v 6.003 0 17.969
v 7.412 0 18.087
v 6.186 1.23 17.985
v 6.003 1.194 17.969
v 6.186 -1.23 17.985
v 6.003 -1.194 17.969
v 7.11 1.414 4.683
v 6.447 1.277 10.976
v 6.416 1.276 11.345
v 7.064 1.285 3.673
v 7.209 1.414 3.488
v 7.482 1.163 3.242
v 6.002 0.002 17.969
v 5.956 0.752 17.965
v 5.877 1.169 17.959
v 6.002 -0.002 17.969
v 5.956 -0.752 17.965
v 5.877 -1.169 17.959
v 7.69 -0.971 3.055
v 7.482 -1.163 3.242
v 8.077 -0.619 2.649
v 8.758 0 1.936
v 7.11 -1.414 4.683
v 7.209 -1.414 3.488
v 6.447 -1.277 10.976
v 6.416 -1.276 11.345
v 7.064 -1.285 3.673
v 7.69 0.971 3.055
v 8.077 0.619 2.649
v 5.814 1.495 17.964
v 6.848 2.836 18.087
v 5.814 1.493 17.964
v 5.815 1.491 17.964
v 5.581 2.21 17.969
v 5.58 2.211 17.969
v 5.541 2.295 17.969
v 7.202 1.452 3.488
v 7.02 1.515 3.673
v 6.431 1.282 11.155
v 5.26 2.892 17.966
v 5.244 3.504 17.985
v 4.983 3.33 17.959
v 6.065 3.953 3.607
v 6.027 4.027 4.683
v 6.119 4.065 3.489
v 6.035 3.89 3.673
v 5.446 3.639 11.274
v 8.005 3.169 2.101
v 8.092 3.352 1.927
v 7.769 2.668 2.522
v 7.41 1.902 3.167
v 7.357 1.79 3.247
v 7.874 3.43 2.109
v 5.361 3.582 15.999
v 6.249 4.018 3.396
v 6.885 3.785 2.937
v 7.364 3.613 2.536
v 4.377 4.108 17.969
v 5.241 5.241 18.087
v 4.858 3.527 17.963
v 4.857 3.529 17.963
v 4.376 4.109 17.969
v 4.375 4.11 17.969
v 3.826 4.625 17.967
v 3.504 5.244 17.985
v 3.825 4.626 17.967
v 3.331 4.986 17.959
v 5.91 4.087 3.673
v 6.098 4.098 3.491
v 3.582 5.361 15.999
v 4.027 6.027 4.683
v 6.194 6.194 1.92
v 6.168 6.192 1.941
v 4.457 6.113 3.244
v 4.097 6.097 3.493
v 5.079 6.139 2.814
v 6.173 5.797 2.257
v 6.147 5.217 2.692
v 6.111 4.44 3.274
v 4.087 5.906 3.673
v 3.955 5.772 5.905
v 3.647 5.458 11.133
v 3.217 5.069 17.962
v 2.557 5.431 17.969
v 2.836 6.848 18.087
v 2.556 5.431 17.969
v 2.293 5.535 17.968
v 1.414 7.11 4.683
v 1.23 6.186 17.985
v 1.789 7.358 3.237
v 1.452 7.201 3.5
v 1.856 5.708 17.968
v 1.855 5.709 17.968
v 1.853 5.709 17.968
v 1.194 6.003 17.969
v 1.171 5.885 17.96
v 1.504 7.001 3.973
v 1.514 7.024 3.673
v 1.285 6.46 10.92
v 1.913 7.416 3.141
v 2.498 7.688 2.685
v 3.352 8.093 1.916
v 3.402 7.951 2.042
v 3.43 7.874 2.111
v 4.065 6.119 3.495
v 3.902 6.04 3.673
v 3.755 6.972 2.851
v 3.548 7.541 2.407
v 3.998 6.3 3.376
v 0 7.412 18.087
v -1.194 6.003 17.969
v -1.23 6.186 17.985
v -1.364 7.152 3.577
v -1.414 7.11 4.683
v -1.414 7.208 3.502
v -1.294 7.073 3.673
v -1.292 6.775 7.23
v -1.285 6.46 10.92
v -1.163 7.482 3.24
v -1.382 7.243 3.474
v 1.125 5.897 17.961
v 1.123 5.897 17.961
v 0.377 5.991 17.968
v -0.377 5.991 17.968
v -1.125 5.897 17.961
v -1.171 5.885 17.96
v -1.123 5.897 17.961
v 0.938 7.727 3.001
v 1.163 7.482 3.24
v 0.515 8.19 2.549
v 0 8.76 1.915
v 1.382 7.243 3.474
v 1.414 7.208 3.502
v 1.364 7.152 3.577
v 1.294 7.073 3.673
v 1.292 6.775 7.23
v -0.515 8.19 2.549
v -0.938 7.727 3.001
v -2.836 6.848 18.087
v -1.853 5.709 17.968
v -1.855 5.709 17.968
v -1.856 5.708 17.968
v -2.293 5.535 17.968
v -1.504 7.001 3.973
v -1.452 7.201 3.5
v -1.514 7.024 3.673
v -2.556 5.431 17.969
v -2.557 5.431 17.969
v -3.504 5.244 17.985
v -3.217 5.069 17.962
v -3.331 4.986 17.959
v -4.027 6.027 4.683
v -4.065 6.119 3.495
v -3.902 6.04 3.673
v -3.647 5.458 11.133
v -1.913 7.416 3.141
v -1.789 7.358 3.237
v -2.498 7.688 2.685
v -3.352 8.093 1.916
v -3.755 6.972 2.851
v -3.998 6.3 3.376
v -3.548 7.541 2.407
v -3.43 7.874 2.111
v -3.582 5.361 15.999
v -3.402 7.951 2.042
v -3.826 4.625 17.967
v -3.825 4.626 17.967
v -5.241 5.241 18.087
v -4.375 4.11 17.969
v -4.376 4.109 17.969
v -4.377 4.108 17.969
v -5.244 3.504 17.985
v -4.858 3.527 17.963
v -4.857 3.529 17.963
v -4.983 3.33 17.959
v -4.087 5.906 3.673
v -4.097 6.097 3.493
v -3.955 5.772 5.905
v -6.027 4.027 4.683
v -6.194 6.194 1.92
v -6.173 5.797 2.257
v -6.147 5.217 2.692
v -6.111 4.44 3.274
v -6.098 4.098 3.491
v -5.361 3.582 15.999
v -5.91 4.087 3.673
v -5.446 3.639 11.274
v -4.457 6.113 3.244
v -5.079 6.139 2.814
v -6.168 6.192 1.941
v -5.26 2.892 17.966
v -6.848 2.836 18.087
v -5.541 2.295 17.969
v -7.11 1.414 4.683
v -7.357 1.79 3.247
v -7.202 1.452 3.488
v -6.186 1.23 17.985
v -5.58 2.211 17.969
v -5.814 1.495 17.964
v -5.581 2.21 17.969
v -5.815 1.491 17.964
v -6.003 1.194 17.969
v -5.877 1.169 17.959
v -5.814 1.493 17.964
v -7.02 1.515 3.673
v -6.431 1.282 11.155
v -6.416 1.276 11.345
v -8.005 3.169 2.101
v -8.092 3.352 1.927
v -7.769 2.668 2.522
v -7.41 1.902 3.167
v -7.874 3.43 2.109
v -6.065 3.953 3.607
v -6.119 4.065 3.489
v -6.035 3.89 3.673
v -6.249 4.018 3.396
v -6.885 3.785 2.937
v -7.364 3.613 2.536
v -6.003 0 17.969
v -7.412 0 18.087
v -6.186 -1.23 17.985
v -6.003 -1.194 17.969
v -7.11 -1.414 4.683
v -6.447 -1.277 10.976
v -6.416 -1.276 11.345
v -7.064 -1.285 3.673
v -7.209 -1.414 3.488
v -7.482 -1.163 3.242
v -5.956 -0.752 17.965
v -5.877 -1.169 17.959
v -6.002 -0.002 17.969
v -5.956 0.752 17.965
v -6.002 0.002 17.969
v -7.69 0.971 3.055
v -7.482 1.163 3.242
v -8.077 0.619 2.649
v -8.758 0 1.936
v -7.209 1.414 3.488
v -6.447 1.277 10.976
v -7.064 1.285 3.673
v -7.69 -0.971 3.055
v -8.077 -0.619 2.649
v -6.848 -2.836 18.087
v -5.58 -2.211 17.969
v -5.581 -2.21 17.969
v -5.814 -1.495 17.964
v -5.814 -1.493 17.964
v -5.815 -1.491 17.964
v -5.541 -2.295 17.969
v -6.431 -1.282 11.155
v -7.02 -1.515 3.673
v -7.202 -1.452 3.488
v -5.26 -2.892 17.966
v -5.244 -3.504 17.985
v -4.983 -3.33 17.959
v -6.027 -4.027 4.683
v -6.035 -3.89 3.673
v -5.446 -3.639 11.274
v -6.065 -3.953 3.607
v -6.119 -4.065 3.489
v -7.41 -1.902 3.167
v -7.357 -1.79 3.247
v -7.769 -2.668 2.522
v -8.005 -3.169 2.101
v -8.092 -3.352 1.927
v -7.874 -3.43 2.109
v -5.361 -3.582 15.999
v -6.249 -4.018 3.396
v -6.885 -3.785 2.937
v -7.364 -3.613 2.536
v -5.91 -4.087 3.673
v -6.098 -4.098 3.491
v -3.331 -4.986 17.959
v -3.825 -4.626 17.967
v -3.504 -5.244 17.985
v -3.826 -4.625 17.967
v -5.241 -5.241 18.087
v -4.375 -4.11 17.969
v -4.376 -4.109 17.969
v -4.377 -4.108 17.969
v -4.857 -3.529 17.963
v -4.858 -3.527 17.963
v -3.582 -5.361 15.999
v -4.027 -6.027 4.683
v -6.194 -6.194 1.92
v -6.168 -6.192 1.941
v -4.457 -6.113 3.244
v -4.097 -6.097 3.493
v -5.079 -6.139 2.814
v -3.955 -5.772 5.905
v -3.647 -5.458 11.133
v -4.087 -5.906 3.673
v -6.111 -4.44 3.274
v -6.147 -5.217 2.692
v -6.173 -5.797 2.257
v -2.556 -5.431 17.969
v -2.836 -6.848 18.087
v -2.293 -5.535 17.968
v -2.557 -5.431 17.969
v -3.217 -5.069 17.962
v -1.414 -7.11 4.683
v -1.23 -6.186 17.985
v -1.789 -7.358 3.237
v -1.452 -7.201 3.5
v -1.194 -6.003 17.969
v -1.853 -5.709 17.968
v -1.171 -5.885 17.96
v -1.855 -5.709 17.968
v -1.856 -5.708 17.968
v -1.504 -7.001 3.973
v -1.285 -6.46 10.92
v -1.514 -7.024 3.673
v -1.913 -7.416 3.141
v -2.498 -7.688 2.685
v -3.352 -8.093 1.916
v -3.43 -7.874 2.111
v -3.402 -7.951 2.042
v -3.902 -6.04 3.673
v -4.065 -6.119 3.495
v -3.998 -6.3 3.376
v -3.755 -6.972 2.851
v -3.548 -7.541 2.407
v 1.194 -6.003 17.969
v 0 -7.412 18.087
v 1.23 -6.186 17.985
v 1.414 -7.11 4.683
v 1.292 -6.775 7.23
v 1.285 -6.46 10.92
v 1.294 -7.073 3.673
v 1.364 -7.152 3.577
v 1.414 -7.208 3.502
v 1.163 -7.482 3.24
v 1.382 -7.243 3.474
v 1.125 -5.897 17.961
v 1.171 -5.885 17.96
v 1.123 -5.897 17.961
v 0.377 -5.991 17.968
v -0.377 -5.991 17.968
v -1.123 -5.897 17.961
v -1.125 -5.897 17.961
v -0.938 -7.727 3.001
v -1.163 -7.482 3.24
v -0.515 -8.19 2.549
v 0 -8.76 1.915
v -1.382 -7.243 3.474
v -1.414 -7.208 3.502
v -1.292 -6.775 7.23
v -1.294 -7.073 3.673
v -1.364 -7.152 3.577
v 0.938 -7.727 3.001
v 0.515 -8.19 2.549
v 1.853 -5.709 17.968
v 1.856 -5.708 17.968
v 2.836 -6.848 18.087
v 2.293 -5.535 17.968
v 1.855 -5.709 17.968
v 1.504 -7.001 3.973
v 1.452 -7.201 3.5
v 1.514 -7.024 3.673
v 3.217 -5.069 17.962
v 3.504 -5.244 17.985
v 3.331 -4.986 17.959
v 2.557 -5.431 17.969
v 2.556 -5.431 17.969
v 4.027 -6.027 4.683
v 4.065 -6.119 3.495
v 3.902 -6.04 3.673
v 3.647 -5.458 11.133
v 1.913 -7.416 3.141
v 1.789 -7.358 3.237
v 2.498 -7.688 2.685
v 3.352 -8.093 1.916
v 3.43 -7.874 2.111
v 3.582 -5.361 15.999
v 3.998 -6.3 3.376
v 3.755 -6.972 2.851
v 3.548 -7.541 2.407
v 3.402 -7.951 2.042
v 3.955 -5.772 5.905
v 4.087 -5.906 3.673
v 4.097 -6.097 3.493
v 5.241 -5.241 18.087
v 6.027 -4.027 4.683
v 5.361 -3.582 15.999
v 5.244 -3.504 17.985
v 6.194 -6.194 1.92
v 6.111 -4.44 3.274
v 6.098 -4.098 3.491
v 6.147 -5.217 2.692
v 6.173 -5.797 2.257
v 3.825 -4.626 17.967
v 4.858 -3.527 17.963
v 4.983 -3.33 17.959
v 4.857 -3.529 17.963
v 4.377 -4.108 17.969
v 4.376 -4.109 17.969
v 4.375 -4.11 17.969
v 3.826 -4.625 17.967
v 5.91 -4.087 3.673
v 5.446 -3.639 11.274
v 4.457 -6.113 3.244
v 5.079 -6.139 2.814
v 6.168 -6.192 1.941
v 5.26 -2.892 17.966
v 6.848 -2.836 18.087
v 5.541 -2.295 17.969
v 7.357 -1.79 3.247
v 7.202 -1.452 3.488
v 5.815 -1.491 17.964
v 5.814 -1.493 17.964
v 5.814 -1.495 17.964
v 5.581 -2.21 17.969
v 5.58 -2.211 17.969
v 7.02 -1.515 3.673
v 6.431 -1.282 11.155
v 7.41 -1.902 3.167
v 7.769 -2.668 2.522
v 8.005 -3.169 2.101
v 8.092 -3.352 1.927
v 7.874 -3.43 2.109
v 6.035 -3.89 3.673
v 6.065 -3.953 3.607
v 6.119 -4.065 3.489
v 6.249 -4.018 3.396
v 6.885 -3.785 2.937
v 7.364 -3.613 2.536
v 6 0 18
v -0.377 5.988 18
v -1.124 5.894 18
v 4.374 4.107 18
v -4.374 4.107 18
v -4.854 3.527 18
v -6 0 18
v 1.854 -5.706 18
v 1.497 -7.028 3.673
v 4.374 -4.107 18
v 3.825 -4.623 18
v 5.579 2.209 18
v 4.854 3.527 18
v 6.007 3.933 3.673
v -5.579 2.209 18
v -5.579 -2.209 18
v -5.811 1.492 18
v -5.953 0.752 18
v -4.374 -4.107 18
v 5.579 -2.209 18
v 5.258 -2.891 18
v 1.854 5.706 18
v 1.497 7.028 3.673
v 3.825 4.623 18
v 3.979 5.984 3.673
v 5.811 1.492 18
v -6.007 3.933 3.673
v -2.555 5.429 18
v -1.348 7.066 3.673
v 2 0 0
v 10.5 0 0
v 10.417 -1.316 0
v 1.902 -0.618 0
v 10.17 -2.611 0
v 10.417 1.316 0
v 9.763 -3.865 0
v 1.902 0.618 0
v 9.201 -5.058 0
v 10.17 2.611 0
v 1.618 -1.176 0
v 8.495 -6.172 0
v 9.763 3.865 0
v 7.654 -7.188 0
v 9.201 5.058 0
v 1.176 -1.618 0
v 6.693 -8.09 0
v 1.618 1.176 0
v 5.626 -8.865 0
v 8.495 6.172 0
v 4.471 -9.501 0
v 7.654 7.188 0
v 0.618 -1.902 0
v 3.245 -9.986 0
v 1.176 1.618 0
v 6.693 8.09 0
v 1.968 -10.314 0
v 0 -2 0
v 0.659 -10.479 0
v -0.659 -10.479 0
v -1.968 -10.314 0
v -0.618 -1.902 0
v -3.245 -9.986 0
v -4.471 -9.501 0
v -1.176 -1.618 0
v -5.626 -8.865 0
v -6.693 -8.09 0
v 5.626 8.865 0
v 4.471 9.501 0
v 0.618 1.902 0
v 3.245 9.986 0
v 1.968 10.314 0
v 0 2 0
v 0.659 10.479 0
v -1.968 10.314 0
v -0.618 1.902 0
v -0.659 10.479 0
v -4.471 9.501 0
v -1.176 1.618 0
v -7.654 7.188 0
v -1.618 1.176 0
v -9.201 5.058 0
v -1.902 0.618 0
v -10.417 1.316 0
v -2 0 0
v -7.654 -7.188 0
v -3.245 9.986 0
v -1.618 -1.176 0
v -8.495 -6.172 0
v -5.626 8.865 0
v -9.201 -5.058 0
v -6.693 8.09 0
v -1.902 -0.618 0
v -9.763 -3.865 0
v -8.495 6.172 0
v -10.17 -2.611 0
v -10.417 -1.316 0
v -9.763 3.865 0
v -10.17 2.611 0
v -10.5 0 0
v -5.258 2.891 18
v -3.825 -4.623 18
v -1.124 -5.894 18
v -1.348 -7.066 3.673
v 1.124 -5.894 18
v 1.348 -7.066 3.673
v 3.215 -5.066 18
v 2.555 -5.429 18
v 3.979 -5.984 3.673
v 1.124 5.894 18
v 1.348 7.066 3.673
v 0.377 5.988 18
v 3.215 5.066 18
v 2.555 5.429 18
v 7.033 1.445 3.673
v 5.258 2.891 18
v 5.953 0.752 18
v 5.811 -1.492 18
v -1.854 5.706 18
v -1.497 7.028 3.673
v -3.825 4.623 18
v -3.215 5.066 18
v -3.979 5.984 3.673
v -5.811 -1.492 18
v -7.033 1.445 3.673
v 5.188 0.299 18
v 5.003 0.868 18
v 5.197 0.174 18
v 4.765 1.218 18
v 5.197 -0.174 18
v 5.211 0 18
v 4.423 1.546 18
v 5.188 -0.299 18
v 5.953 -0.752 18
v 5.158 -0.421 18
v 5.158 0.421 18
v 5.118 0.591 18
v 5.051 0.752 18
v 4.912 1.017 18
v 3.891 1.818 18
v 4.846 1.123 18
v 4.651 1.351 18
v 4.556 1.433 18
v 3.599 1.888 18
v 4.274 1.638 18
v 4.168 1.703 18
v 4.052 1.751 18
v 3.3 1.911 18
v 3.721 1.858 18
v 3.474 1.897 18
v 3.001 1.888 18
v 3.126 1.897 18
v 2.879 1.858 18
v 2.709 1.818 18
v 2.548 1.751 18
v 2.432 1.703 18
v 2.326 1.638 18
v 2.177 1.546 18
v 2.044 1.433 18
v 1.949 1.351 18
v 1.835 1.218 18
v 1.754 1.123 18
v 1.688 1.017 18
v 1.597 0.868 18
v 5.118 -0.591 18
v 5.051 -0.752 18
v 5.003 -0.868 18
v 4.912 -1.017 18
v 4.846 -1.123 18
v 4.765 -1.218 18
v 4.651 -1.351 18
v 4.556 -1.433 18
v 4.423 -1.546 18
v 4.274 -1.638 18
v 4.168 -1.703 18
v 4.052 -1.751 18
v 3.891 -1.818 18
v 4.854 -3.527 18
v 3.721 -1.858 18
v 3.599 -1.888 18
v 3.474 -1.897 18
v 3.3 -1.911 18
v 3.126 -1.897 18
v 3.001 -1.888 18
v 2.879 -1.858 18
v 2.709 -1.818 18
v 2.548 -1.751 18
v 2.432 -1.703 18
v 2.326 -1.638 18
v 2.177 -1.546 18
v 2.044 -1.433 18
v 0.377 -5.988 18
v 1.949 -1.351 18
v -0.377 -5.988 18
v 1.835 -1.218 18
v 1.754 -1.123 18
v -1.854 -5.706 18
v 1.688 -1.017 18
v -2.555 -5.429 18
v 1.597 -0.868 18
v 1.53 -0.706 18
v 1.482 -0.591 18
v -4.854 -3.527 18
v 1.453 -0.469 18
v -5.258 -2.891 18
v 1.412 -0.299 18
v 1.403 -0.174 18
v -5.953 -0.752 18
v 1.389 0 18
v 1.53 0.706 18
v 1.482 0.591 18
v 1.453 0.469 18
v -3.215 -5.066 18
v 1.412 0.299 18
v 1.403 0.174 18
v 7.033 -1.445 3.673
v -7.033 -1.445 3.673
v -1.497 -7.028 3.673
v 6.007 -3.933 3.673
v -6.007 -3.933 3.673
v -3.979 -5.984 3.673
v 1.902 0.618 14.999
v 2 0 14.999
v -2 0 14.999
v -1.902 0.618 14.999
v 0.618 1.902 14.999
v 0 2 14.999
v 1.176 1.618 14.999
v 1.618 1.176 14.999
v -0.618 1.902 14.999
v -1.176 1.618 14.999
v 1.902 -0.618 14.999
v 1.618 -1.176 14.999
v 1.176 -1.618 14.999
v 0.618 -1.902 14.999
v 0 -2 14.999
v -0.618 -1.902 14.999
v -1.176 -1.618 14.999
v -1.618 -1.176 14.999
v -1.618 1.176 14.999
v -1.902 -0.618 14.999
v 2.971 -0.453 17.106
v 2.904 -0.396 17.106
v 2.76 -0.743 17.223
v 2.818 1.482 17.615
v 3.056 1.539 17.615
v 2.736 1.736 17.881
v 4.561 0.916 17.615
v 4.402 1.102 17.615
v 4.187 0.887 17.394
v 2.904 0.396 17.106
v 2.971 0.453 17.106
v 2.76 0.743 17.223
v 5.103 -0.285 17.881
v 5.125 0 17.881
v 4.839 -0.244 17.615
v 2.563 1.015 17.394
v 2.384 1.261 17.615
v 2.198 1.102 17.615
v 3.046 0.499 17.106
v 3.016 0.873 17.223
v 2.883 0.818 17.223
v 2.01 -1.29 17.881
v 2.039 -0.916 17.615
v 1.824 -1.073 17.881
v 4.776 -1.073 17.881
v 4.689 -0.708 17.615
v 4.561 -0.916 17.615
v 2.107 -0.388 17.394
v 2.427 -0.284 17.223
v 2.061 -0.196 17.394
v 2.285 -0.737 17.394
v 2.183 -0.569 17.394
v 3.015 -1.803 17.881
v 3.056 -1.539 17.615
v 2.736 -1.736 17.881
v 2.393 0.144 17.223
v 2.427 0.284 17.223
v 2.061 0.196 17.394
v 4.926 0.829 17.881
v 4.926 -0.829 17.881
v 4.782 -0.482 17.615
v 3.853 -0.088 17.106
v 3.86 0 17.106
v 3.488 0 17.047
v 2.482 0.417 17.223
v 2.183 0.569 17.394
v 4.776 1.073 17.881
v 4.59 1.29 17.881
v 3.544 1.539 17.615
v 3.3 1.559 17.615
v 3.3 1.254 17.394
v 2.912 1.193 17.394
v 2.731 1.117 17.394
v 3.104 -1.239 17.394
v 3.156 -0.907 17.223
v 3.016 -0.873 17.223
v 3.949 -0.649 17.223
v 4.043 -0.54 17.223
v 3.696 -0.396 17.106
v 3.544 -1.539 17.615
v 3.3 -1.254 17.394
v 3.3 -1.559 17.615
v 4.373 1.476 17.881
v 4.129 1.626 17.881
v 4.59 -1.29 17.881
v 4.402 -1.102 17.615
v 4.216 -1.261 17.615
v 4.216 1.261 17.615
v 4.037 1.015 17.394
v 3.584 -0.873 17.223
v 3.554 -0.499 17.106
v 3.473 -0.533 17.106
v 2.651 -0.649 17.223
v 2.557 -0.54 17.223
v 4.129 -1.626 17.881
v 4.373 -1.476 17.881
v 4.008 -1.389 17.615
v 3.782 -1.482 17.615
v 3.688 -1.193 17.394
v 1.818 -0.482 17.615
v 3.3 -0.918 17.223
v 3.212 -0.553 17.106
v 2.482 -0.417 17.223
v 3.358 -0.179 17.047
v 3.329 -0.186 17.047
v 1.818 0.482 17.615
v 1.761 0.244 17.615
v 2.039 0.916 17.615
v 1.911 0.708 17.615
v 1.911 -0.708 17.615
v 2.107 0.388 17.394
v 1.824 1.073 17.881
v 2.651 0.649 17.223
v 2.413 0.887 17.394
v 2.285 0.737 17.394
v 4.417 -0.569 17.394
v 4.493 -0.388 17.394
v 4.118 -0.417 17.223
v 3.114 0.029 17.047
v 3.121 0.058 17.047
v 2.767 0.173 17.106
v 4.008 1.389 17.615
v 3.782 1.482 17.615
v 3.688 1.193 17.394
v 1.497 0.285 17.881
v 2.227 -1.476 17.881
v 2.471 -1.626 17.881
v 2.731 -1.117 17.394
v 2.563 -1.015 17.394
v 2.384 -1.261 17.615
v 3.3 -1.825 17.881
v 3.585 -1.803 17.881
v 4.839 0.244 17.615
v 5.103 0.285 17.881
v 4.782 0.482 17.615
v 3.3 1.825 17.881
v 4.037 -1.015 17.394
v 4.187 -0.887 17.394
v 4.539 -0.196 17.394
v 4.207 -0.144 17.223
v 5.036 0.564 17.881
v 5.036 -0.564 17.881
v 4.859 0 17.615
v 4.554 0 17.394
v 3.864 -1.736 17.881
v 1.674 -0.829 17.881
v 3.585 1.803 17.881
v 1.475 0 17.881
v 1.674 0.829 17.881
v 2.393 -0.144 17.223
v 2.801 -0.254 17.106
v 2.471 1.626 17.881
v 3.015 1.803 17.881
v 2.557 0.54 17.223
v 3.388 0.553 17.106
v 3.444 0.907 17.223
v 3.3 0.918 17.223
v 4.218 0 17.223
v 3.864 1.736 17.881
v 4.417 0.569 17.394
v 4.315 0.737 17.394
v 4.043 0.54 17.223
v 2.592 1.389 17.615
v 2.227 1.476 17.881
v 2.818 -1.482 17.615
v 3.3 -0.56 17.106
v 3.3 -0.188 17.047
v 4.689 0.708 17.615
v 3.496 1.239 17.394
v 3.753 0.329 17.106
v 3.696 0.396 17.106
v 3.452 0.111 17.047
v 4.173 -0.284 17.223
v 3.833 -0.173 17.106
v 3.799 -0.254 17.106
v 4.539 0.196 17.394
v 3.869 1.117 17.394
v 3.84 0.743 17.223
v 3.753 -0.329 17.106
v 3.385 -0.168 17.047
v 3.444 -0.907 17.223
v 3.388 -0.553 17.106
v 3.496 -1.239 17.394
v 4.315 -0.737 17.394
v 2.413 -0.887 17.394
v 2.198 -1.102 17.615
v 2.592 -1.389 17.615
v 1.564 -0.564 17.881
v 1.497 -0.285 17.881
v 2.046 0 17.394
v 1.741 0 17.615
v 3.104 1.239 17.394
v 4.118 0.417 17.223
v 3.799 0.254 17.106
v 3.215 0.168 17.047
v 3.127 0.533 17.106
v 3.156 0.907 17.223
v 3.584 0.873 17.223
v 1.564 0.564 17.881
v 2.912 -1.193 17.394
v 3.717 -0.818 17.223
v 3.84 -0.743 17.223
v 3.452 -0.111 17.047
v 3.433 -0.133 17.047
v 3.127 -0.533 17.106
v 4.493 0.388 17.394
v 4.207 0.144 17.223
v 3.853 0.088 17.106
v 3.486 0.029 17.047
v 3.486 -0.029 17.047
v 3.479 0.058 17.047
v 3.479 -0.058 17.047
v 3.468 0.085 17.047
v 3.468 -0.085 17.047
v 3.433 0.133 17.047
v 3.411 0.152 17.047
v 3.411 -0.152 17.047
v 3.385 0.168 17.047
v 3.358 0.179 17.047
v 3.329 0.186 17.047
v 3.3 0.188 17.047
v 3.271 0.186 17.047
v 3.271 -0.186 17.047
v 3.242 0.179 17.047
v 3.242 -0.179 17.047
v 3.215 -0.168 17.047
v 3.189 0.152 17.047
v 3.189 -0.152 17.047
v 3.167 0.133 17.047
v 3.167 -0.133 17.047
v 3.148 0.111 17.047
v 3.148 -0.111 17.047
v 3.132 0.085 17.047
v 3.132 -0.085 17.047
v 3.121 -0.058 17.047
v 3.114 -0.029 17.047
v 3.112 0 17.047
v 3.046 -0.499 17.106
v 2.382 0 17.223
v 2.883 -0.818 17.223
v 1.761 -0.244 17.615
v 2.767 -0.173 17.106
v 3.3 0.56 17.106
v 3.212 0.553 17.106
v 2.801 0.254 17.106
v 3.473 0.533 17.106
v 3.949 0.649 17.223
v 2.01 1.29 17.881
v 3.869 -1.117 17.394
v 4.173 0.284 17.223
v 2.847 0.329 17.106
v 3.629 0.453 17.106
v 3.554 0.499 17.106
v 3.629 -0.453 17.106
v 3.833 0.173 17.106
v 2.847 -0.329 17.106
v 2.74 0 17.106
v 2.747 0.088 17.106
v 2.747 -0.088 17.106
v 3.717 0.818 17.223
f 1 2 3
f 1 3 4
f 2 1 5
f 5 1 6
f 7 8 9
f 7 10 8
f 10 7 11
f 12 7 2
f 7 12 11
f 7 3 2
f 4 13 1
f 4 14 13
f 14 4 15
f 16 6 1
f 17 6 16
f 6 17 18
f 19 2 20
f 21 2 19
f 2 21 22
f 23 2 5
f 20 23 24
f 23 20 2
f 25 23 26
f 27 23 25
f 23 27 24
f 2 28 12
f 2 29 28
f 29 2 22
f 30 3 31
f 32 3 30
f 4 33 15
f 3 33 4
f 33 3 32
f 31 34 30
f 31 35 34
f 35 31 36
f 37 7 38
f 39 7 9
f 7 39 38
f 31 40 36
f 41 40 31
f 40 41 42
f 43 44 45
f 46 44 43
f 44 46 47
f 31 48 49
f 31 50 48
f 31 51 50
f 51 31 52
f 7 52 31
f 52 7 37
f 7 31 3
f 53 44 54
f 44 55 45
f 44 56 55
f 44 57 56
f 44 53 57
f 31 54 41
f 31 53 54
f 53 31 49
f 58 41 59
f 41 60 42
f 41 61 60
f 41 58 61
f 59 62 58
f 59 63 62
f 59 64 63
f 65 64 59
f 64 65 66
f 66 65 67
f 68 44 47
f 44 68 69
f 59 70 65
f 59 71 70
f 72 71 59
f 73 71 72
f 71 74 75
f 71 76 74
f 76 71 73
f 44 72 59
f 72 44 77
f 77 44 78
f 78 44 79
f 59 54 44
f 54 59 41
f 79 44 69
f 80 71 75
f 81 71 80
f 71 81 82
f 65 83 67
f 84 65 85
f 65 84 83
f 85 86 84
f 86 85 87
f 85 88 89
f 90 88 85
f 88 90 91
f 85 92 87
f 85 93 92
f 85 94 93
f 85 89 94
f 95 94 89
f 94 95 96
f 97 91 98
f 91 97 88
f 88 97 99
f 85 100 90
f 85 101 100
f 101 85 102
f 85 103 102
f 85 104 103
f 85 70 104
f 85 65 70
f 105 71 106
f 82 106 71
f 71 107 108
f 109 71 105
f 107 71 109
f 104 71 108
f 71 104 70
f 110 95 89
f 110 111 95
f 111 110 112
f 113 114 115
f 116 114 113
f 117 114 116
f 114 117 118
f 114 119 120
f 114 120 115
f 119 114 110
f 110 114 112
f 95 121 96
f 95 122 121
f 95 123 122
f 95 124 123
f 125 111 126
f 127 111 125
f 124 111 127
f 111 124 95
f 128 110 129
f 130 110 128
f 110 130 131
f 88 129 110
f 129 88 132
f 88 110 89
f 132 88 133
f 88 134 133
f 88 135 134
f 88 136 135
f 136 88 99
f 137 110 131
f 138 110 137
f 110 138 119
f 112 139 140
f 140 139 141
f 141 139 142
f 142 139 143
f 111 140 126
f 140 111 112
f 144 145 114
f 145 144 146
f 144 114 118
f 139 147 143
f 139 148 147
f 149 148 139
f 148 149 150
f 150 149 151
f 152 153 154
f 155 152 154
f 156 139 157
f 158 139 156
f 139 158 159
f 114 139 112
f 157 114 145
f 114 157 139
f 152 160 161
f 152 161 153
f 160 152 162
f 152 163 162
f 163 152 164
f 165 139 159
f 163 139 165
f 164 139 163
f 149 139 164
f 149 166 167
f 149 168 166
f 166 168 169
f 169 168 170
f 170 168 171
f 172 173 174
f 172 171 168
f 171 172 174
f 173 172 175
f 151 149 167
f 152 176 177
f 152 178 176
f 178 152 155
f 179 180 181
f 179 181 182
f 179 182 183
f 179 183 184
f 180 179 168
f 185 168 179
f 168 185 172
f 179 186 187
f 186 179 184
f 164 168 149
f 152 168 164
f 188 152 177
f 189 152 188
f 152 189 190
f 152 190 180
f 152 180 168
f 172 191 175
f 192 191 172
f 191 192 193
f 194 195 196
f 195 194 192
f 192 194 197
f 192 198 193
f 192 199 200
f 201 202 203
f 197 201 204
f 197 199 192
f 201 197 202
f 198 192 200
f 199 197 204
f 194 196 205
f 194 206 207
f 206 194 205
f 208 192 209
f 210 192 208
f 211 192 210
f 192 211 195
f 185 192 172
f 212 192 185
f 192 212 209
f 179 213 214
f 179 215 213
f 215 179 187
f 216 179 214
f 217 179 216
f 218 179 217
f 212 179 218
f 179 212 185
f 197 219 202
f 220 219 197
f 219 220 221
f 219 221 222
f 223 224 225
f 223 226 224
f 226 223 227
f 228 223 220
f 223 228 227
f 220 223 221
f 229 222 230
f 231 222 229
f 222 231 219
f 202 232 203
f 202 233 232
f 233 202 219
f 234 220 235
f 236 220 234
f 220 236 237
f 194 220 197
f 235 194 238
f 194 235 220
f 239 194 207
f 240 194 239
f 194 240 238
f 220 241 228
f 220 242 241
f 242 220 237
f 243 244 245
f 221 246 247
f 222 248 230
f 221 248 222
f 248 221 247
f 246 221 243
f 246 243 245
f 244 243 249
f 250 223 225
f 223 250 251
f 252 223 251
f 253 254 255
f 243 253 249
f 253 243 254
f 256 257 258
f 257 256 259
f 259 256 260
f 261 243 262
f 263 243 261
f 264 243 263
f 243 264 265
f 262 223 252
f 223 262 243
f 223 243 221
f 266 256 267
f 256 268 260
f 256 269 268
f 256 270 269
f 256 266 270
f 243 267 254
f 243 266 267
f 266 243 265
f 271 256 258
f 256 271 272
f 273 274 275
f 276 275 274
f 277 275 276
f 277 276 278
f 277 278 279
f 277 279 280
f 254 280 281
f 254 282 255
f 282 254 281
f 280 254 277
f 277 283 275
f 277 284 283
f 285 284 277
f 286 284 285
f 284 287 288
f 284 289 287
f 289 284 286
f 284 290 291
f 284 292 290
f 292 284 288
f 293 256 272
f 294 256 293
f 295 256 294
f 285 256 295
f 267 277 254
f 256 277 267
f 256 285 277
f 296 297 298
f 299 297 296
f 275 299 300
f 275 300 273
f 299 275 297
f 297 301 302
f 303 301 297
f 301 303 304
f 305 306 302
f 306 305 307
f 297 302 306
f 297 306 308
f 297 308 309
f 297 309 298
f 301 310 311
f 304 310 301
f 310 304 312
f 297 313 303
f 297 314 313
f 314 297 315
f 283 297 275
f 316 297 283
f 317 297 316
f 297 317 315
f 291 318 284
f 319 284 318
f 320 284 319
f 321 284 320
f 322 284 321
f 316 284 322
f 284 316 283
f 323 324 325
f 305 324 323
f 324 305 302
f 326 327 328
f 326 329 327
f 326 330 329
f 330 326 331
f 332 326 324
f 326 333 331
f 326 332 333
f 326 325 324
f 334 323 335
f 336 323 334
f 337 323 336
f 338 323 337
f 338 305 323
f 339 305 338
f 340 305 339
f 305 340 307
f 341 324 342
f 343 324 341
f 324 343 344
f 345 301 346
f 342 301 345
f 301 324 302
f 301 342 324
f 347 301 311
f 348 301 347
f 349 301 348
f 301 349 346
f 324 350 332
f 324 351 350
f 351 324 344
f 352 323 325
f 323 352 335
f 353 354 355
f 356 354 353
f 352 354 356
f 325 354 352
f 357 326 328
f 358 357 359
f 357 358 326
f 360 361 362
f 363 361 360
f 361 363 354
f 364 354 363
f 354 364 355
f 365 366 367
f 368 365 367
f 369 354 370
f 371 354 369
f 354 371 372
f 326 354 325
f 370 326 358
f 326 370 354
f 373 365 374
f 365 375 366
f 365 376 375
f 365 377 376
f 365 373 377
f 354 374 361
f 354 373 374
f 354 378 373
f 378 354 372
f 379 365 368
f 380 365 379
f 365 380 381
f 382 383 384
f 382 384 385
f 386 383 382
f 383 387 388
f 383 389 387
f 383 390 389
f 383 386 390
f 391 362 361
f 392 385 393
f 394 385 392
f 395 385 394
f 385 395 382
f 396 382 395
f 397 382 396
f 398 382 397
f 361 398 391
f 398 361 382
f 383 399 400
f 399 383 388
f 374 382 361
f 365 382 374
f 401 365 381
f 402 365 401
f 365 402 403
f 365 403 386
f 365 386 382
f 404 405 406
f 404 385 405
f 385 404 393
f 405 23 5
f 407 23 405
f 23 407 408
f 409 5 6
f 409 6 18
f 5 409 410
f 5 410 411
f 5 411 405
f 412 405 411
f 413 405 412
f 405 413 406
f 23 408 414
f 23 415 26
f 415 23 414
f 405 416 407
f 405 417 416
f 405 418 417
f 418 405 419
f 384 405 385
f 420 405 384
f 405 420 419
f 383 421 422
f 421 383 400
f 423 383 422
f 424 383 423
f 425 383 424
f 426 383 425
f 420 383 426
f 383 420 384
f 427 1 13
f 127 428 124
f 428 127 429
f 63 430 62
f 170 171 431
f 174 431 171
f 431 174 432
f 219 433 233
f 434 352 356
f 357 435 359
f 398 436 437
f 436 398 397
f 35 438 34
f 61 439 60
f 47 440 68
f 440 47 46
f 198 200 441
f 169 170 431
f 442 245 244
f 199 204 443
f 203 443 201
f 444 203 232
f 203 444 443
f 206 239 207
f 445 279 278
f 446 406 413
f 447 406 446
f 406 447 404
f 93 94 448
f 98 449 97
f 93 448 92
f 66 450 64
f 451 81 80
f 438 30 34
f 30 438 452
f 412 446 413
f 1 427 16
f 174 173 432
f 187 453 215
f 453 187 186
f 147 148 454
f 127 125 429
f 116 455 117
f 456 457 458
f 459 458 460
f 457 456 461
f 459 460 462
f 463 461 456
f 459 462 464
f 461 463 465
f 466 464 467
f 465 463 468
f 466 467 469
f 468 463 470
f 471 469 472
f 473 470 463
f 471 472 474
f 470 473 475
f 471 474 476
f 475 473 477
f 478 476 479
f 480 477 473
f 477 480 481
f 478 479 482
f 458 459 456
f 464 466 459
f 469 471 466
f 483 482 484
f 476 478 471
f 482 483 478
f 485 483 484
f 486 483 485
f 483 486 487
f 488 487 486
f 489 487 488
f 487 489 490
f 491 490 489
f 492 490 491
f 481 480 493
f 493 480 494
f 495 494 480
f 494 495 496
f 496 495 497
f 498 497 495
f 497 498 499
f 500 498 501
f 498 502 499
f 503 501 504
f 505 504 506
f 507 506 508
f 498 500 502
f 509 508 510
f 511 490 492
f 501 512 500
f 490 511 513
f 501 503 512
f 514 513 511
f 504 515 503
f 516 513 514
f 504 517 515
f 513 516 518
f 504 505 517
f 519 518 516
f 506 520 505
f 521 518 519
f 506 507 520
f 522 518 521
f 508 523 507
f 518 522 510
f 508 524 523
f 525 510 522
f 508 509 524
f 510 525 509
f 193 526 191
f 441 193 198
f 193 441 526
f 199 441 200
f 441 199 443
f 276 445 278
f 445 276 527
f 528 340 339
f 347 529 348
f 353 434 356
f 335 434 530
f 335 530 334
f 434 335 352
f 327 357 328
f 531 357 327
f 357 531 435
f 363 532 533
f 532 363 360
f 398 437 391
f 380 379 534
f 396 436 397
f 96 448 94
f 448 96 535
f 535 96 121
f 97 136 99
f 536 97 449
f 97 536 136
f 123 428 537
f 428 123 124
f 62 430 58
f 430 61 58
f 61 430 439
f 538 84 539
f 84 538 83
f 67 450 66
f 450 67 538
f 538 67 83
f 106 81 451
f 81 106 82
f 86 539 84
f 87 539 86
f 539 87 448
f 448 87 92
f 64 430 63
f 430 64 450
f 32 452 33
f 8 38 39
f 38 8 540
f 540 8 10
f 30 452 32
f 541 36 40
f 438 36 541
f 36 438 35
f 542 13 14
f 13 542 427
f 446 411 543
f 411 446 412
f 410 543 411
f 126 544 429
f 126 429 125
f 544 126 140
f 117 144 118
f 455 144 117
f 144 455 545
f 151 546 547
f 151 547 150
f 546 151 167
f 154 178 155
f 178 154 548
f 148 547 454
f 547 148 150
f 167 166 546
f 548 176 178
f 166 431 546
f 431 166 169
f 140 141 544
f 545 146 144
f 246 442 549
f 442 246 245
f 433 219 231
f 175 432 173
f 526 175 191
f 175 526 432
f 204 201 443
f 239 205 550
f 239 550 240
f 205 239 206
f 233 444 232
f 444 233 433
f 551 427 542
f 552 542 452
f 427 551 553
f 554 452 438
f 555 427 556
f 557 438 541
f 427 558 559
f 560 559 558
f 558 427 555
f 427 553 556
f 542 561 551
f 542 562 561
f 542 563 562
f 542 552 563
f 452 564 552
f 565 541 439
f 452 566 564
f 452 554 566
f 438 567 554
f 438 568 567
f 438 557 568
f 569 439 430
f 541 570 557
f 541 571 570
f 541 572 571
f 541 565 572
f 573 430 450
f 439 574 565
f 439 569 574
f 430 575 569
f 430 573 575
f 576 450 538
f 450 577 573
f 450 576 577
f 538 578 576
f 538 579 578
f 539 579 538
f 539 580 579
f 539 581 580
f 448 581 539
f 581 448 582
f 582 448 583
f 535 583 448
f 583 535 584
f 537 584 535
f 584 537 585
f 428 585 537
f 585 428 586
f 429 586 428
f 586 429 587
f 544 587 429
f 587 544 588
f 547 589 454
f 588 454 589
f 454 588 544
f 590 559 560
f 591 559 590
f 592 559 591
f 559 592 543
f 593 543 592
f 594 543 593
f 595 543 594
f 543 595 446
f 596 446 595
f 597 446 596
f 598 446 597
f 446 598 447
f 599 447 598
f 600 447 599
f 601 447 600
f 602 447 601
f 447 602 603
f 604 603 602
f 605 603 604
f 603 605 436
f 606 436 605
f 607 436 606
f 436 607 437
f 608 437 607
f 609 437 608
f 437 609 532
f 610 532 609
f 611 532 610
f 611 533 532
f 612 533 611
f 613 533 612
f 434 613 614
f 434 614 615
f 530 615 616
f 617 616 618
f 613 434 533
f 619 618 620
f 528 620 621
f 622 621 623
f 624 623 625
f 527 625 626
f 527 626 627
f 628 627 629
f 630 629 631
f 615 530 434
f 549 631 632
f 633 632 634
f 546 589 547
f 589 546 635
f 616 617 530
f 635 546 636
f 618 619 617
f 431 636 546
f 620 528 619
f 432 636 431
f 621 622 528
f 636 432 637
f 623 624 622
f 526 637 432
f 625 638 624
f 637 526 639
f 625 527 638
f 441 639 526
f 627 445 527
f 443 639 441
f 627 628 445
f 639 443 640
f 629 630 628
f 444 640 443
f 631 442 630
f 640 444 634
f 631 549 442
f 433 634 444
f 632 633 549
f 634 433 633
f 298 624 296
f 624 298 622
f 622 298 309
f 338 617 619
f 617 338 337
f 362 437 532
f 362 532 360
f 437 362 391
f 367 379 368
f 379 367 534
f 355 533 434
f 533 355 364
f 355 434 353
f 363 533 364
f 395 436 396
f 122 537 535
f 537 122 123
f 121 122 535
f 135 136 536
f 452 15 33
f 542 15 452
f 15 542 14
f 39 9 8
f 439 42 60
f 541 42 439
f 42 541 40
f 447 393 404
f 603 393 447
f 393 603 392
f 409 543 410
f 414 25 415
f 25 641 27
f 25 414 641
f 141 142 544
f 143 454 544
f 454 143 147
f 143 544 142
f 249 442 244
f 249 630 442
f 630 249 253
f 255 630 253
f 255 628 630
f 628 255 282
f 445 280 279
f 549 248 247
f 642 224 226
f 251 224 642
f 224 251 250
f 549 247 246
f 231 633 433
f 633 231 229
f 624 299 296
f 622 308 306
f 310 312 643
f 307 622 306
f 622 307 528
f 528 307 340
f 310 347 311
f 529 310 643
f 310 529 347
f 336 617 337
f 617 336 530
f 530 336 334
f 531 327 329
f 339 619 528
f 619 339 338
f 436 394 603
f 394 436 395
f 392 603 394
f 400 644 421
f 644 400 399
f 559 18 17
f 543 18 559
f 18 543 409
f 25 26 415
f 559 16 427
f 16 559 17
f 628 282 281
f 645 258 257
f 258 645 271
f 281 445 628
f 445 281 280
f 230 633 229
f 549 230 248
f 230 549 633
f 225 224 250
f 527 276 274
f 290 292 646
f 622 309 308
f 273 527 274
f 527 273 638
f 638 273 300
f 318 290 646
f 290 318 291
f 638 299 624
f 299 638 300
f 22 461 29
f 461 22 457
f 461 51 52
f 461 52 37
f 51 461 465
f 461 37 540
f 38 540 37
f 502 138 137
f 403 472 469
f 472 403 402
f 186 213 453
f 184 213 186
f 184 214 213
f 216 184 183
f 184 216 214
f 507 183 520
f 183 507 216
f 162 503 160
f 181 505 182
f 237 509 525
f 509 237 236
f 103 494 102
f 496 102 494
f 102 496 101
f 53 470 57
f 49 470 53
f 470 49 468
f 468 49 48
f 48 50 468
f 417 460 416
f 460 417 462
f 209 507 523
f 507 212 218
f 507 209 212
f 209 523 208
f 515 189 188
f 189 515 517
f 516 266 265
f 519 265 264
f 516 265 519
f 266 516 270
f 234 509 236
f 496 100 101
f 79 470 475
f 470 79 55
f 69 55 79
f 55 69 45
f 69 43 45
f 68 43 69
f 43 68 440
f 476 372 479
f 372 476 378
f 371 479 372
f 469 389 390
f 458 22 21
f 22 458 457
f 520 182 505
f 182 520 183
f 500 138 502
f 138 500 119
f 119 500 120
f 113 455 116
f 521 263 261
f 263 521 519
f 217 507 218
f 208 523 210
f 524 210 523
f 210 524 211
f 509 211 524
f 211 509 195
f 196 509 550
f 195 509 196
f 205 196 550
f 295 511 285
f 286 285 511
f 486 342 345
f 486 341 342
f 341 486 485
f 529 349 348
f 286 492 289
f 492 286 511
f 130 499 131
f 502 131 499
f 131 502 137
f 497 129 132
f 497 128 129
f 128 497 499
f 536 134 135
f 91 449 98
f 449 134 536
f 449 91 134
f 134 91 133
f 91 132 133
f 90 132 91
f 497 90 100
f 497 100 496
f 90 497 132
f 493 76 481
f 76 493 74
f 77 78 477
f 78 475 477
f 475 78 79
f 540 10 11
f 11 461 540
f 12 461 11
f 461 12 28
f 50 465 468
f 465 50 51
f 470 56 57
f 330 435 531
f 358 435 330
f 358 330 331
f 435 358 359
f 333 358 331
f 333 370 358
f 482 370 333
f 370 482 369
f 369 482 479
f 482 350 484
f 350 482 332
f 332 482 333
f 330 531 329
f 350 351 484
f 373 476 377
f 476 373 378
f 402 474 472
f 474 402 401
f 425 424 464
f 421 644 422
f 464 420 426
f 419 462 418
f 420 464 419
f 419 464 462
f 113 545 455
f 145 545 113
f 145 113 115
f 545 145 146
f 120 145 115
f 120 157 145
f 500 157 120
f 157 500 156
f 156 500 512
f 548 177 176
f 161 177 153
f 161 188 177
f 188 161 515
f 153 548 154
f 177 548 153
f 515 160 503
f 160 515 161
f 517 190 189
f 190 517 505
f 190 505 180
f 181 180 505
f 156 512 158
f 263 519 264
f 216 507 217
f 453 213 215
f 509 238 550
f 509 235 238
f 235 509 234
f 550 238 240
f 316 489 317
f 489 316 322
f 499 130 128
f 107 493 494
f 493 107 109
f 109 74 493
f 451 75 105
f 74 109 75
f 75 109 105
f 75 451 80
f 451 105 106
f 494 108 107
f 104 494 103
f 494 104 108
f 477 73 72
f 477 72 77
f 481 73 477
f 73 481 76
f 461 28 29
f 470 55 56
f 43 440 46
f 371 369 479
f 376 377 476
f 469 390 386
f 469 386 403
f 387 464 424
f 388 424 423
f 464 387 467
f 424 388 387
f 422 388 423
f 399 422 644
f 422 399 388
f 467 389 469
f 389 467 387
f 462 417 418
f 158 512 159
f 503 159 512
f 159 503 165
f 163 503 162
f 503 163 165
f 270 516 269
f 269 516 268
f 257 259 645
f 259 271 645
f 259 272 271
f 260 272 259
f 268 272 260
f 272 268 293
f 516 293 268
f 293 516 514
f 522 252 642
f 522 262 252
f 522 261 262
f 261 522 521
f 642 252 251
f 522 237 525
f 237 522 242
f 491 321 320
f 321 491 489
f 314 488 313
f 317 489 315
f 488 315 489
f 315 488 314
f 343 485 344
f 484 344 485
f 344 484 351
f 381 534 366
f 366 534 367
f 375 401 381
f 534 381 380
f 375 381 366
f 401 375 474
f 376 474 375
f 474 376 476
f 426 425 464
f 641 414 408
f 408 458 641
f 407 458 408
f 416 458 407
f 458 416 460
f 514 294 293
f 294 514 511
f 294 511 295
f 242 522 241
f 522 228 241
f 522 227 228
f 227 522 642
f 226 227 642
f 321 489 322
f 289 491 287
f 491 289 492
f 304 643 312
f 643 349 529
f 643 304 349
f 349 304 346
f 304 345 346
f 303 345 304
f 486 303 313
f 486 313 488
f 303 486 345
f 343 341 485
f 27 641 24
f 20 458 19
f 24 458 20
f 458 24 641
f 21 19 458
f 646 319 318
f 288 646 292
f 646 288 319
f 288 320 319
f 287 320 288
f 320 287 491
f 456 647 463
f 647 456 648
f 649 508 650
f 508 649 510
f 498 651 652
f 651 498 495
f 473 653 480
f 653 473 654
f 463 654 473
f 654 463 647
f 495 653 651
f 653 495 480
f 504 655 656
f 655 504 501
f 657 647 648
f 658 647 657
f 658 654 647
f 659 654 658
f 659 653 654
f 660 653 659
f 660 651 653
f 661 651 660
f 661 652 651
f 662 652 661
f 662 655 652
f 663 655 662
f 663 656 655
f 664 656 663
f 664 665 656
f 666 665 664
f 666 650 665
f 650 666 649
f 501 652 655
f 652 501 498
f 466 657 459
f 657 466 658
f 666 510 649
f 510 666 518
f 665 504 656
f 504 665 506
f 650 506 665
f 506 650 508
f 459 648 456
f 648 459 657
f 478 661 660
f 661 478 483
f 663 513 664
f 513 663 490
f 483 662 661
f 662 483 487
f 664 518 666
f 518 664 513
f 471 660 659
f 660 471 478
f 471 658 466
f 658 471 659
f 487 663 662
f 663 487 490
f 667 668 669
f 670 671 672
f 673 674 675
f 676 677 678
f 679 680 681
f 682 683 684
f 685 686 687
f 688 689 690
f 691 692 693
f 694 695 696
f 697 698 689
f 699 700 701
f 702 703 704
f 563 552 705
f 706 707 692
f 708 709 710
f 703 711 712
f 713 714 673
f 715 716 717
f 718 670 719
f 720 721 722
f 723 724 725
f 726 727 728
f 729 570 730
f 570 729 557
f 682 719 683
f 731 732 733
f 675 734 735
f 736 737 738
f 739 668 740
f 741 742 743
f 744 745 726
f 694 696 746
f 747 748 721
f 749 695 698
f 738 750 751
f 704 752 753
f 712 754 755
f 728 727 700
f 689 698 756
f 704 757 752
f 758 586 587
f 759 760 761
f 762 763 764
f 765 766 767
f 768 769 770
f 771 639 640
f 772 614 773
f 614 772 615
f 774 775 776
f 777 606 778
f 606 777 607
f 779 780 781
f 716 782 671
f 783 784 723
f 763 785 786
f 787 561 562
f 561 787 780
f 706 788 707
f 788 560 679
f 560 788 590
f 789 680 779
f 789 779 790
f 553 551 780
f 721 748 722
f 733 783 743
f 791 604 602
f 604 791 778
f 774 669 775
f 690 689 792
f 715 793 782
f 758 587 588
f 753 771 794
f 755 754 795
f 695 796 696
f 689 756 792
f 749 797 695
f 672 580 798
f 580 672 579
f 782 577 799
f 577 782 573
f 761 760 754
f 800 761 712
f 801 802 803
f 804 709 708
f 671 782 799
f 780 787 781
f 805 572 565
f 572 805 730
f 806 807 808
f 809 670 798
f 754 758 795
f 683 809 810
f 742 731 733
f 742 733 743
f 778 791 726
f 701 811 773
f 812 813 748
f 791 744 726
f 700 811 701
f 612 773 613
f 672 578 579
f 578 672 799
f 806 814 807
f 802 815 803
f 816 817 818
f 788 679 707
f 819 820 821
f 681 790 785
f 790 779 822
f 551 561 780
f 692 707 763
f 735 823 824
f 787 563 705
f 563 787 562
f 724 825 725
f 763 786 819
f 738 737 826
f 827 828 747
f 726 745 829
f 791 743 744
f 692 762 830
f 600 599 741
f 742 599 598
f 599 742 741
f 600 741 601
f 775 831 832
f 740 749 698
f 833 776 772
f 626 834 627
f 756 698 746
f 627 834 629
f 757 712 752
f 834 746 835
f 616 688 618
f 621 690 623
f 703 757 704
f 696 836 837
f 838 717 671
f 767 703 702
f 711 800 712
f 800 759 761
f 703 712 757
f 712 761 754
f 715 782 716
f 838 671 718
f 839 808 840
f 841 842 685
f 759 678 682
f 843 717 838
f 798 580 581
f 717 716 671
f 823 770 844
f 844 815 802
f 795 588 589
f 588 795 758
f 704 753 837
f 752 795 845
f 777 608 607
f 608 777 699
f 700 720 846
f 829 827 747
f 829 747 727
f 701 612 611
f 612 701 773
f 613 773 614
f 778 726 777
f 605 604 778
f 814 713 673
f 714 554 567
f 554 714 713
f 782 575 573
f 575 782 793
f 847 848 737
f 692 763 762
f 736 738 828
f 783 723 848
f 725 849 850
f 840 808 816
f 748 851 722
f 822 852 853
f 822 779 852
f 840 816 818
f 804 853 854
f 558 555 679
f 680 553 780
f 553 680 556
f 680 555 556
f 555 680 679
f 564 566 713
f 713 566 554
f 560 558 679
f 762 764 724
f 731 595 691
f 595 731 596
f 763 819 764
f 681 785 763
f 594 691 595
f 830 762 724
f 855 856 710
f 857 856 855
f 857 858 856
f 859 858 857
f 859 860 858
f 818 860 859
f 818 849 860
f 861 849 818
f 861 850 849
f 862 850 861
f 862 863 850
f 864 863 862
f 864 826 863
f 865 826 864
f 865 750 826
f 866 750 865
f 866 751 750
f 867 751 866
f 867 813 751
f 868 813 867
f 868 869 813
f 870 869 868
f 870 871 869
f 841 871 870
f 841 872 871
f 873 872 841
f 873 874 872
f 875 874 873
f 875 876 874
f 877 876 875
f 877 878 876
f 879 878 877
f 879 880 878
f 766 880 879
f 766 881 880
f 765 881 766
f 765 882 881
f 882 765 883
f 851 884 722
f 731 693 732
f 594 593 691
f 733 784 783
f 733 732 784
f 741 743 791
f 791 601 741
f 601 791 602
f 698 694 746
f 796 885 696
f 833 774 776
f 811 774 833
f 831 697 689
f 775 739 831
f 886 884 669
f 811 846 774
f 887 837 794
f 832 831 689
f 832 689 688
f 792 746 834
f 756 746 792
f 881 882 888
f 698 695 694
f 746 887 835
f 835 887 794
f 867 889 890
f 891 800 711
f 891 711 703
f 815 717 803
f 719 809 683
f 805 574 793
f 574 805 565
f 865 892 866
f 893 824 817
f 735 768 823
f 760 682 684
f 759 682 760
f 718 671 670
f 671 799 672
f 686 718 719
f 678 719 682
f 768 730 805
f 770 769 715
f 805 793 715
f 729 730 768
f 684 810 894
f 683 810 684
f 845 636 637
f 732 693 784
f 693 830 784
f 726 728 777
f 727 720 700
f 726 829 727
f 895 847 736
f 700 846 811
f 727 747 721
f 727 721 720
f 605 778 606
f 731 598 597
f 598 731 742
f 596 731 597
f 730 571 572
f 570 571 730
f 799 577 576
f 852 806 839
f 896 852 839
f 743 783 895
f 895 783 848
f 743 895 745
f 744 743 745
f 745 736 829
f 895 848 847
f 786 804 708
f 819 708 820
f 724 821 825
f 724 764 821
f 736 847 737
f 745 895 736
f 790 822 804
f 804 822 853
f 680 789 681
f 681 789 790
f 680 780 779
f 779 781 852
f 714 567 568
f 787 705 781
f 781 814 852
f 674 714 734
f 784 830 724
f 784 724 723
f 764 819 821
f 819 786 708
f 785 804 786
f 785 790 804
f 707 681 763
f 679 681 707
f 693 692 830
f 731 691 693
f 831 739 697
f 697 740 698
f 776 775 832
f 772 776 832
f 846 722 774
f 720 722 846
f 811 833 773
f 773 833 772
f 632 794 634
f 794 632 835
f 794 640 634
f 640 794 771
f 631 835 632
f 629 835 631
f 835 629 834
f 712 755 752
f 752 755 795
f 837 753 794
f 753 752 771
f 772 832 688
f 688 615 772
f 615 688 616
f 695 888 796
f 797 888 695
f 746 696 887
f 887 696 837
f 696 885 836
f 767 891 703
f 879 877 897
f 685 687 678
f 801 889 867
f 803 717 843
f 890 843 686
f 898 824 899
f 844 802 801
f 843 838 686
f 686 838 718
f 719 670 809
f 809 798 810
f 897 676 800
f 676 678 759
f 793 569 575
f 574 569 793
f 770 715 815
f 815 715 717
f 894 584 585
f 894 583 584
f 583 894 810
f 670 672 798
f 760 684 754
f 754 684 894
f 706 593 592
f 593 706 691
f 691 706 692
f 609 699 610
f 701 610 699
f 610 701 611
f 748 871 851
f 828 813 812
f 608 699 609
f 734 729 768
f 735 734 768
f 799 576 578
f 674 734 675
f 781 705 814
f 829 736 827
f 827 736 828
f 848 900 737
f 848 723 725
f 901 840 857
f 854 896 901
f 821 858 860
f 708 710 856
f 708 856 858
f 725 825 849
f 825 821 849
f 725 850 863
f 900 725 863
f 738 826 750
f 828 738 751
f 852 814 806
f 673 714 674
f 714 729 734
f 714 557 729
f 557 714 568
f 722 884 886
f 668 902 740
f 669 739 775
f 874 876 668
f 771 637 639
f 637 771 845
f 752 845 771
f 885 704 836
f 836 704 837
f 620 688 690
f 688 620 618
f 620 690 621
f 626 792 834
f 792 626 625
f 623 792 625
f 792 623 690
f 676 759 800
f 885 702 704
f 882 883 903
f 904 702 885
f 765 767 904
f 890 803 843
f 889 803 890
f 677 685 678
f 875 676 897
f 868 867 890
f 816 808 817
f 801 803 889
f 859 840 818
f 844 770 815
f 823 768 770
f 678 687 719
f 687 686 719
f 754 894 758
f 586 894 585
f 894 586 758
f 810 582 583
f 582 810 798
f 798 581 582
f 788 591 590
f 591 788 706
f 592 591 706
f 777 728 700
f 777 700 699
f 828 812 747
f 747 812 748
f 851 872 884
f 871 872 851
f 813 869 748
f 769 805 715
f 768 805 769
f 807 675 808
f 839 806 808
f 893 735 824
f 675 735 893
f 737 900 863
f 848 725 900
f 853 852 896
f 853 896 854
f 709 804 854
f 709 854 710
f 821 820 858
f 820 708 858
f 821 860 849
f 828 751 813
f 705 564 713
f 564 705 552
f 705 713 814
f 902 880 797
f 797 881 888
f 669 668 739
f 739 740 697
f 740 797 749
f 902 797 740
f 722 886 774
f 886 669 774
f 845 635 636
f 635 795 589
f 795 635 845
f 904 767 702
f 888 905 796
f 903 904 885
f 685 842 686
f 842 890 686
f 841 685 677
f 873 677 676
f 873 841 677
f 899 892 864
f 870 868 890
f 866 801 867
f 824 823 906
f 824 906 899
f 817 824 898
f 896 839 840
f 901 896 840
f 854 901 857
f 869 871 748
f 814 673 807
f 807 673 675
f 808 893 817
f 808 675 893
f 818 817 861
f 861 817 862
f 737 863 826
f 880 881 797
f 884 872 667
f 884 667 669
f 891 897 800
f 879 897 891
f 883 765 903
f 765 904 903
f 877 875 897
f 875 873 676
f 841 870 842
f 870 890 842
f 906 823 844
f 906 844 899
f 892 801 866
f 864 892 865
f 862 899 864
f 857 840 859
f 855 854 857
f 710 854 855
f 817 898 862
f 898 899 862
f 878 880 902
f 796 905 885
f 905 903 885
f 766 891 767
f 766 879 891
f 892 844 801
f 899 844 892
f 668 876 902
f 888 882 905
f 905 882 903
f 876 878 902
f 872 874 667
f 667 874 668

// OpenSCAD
/*
*******************************************
Programm Info: Greifarm_LC Drehknopf

*******************************************
Version: 14.11.2026 khf
*******************************************
*/

//***************   Auswahl   *************

//keine

//***************   Libraries  ************

//keine

//*****************************************

//***************  Parameter   *************
$fn=60;

//-----------------------------------
// Loch-Durchmesser in mm.
HoleDiameter = 4;

// Tiefe des Lochs im Boden (in mm). 
HoleDepth = 15;

// Wenn du ein D-förmiges Loch wünscht, stelle die Dicke auf der flachen Seite (in mm) ein.  Größere Werte für die Ebene machen das Loch kleiner.
HoleFlatThickness = 0;

// Höhe (in mm).  Wenn die Kuppelkappe ausgewählt ist, ist sie nicht in der Höhe enthalten.  Auch die Wellenlänge wird nicht gezählt.
KnobHeight = 18 ;

// Durchmesser des Knopfes in mm.  
KnobDiameter = 15;

// Form der Oberseite des Knopfes.  Der Typ "Einbau" kann lackiert werden.
CapType = 0;	// [0:Flach, 1:Einbau, 2:Dome]

// Möchtest du einen großen StilZeiger?
TimerKnob=0;	// [0:Nein, 1:Ja]

// Möchtest du eine Markierung oben, um die Richtung anzuzeigen?
Pointer1 = 1;	// [0:Nein, 1:Ja]

// Möchtest du einen Richtungszeiger?
Pointer2 = 0;	// [0:Nein, 1:Ja]

// Willst du einen Rändelung um den Knopf?
Knurled = 1;	// [0:Nein, 1:Ja]

// 0 = Ein zylindrischer Knopf, jeder andere Wert verjüngen den Knopf.
TaperPercentage = 20;		// [0:0%, 10:10%, 20:20%, 30:30%, 40:40%, 50:50%]

// Breite des Rings "Dial" (in mm).  0= keine RIng
RingWidth = 3;

// Die Anzahl der Markierungen auf dem Zifferblatt.  0 = keine Markierungen   (RingWidth muss ungleich Null sein.)
RingMarkings = 0;

// Durchmesser des Lochs für die Befestigungsschraube in mm.  0 = kein Loch
ScrewHoleDiameter = 0;

//  Länge der Welle auf der Unterseite des Knopfes (in mm).  0 = keine Welle
ShaftLength = 0;

// Durchmesser der Welle auf der Unterseite des Knopfes in mm.  (ShaftLength größer Null sein.)
ShaftDiameter = 10;

// Möchtest du eine Kerbe in der Welle?  Es kann für einen Einpressknopf verwendet werden (anstelle einer Befestigungsschraube).  (ShaftLength größer Null sein.)
NotchedShaft = 0;	// [0:No, 1:Yes]



//////////////////////////
//Erweiterte Einstellungen
//////////////////////////

RingThickness = 5*1;
DivotDepth = 1.5*1;
MarkingWidth = 1.5*1;
DistanceBetweenKnurls = 3*1;
TimerKnobConst = 1.8*1;

//*****************************************

//**************   Programm  **************

//////////////////////////
//Berechnungen
//////////////////////////

PI=3.14159265*1;
KnobMajorRadius = KnobDiameter/2;
KnobMinorRadius = KnobDiameter/2 * (1 - TaperPercentage/100);
KnobRadius = KnobMinorRadius + (KnobMajorRadius-KnobMinorRadius)/2;
KnobCircumference = PI*KnobDiameter;
Knurls = round(KnobCircumference/DistanceBetweenKnurls);
Divot=CapType;

TaperAngle=asin(KnobHeight / (sqrt(pow(KnobHeight, 2) +
		pow(KnobMajorRadius-KnobMinorRadius,2)))) - 90;

DivotRadius = KnobMinorRadius*.4;


union()
{
translate([0, 0, (ShaftLength==0)? 0 : ShaftLength-0.001])
difference()
{
union()
{
	// Primary knob cylinder
	cylinder(h=KnobHeight, r1=KnobMajorRadius, r2=KnobMinorRadius,
			$fn=50);
	
	if (Knurled)
		for (i=[0 : Knurls-1])
			rotate([0, 0, i * (360/Knurls)])
				translate([KnobRadius, 0, KnobHeight/2])
					rotate([0, TaperAngle, 0]) rotate([0, 0, 45])
						cube([2, 2, KnobHeight+.001], center=true);

 	if (RingMarkings>0)
		for (i=[0 : RingMarkings-1])
			rotate([0, 0, i * (360/RingMarkings)])
				translate([KnobMajorRadius + RingWidth/2, 0, 1])
					cube([RingWidth*.5, MarkingWidth, 2], center=true);		
	
	if (Pointer2==1)
		translate([KnobRadius, 0, KnobHeight/2-2])
			rotate([0, TaperAngle, 0])
				cube([8, 3, KnobHeight], center=true);		

	if (RingWidth>0)
		translate([0, 0, RingThickness/2])
			cylinder(r1=KnobMajorRadius + RingWidth, r2=KnobMinorRadius,
					h=RingThickness, $fn=50, center=true);

	if (Divot==2)
		translate([0, 0, KnobHeight])
			difference()
			{
				scale([1, 1, 0.5])
					sphere(r=KnobMinorRadius, $fn=50, center=true);

				translate([0, 0, 0-(KnobMinorRadius+.001)])
					cube([KnobMinorRadius*2.5, KnobMinorRadius*2.5,
							KnobMinorRadius*2], center=true);
			}

	if (TimerKnob==1) intersection()
		{
			translate([0, 0, 0-(KnobDiameter*TimerKnobConst) + KnobHeight])
			sphere(r=KnobDiameter*TimerKnobConst, $fn=80, center=true);		
	
			translate([0-(KnobDiameter*TimerKnobConst)*0.1, 0,
					KnobHeight/2])
				scale([1, 0.5, 1])
					cylinder(h=KnobHeight, r=(KnobDiameter*TimerKnobConst) *
							0.8, $fn=3, center=true);
		}
}

// Zeiger1
if (Pointer1==1)
	translate([KnobMinorRadius*.55, 0, KnobHeight + DivotRadius*.6])
		sphere(r=DivotRadius, $fn=40);

// Divot1: Zentrierter zylynischer Divot
if (Divot==1)
	translate([0, 0, KnobHeight])
		cylinder(h=DivotDepth*2, r=KnobMinorRadius-1.5, $fn=50,
				center=true);

if (ShaftLength==0)
{
	// Loch für Welle
	translate([0, 0, HoleDepth/2 - 0.001])
		difference()
		{
			cylinder(r=HoleDiameter/2, h=HoleDepth, $fn=20,
					center=true);
	
			// D-förmiges Loch
			translate([(0-HoleDiameter)+HoleFlatThickness, 0, 0])
				cube([HoleDiameter, HoleDiameter, HoleDepth+.001],
						center=true);
		}
	
	// Loch für Befestigungsschraube
	if (ScrewHoleDiameter>0)
		translate([0 - (KnobMajorRadius+RingWidth+1)/2, 0,
				HoleDepth/2])
			rotate([0, 90, 0])
			cylinder(h=(KnobMajorRadius+RingWidth+1),
					r=ScrewHoleDiameter/2, $fn=20, center=true);
}

// Stelle sicher, dass die unteren Enden bei z=0
translate([0, 0, -10])
	cube([(KnobMajorRadius+RingWidth) * 3,
			(KnobMajorRadius+RingWidth) * 3, 20], center=true);
}

if (ShaftLength>0)
	difference()
	{
		translate([0, 0, ShaftLength/2])
			cylinder(h=ShaftLength, r=ShaftDiameter/2, $fn=20,
					center=true);

		if (NotchedShaft==1)
		{
			cube([HoleDiameter/2, ShaftDiameter*2, ShaftLength],
					center=true);
		}

		// Loch für Welle
		translate([0, 0, HoleDepth/2 - 0.001])
			difference()
			{
				cylinder(r=HoleDiameter/2, h=HoleDepth, $fn=20,
						center=true);
		
				// D-förmiges Loch
				translate([(0-HoleDiameter)+HoleFlatThickness, 0, 0])
					cube([HoleDiameter, HoleDiameter, HoleDepth+.001],
							center=true);
			}
		
		// Loch für Befestigungsschraube
		if (ScrewHoleDiameter>0)
			translate([0 - (KnobMajorRadius+RingWidth+1)/2, 0,
					HoleDepth/2])
				rotate([0, 90, 0])
				cylinder(h=(KnobMajorRadius+RingWidth+1),
						r=ScrewHoleDiameter/2, $fn=20, center=true);
	}
}
